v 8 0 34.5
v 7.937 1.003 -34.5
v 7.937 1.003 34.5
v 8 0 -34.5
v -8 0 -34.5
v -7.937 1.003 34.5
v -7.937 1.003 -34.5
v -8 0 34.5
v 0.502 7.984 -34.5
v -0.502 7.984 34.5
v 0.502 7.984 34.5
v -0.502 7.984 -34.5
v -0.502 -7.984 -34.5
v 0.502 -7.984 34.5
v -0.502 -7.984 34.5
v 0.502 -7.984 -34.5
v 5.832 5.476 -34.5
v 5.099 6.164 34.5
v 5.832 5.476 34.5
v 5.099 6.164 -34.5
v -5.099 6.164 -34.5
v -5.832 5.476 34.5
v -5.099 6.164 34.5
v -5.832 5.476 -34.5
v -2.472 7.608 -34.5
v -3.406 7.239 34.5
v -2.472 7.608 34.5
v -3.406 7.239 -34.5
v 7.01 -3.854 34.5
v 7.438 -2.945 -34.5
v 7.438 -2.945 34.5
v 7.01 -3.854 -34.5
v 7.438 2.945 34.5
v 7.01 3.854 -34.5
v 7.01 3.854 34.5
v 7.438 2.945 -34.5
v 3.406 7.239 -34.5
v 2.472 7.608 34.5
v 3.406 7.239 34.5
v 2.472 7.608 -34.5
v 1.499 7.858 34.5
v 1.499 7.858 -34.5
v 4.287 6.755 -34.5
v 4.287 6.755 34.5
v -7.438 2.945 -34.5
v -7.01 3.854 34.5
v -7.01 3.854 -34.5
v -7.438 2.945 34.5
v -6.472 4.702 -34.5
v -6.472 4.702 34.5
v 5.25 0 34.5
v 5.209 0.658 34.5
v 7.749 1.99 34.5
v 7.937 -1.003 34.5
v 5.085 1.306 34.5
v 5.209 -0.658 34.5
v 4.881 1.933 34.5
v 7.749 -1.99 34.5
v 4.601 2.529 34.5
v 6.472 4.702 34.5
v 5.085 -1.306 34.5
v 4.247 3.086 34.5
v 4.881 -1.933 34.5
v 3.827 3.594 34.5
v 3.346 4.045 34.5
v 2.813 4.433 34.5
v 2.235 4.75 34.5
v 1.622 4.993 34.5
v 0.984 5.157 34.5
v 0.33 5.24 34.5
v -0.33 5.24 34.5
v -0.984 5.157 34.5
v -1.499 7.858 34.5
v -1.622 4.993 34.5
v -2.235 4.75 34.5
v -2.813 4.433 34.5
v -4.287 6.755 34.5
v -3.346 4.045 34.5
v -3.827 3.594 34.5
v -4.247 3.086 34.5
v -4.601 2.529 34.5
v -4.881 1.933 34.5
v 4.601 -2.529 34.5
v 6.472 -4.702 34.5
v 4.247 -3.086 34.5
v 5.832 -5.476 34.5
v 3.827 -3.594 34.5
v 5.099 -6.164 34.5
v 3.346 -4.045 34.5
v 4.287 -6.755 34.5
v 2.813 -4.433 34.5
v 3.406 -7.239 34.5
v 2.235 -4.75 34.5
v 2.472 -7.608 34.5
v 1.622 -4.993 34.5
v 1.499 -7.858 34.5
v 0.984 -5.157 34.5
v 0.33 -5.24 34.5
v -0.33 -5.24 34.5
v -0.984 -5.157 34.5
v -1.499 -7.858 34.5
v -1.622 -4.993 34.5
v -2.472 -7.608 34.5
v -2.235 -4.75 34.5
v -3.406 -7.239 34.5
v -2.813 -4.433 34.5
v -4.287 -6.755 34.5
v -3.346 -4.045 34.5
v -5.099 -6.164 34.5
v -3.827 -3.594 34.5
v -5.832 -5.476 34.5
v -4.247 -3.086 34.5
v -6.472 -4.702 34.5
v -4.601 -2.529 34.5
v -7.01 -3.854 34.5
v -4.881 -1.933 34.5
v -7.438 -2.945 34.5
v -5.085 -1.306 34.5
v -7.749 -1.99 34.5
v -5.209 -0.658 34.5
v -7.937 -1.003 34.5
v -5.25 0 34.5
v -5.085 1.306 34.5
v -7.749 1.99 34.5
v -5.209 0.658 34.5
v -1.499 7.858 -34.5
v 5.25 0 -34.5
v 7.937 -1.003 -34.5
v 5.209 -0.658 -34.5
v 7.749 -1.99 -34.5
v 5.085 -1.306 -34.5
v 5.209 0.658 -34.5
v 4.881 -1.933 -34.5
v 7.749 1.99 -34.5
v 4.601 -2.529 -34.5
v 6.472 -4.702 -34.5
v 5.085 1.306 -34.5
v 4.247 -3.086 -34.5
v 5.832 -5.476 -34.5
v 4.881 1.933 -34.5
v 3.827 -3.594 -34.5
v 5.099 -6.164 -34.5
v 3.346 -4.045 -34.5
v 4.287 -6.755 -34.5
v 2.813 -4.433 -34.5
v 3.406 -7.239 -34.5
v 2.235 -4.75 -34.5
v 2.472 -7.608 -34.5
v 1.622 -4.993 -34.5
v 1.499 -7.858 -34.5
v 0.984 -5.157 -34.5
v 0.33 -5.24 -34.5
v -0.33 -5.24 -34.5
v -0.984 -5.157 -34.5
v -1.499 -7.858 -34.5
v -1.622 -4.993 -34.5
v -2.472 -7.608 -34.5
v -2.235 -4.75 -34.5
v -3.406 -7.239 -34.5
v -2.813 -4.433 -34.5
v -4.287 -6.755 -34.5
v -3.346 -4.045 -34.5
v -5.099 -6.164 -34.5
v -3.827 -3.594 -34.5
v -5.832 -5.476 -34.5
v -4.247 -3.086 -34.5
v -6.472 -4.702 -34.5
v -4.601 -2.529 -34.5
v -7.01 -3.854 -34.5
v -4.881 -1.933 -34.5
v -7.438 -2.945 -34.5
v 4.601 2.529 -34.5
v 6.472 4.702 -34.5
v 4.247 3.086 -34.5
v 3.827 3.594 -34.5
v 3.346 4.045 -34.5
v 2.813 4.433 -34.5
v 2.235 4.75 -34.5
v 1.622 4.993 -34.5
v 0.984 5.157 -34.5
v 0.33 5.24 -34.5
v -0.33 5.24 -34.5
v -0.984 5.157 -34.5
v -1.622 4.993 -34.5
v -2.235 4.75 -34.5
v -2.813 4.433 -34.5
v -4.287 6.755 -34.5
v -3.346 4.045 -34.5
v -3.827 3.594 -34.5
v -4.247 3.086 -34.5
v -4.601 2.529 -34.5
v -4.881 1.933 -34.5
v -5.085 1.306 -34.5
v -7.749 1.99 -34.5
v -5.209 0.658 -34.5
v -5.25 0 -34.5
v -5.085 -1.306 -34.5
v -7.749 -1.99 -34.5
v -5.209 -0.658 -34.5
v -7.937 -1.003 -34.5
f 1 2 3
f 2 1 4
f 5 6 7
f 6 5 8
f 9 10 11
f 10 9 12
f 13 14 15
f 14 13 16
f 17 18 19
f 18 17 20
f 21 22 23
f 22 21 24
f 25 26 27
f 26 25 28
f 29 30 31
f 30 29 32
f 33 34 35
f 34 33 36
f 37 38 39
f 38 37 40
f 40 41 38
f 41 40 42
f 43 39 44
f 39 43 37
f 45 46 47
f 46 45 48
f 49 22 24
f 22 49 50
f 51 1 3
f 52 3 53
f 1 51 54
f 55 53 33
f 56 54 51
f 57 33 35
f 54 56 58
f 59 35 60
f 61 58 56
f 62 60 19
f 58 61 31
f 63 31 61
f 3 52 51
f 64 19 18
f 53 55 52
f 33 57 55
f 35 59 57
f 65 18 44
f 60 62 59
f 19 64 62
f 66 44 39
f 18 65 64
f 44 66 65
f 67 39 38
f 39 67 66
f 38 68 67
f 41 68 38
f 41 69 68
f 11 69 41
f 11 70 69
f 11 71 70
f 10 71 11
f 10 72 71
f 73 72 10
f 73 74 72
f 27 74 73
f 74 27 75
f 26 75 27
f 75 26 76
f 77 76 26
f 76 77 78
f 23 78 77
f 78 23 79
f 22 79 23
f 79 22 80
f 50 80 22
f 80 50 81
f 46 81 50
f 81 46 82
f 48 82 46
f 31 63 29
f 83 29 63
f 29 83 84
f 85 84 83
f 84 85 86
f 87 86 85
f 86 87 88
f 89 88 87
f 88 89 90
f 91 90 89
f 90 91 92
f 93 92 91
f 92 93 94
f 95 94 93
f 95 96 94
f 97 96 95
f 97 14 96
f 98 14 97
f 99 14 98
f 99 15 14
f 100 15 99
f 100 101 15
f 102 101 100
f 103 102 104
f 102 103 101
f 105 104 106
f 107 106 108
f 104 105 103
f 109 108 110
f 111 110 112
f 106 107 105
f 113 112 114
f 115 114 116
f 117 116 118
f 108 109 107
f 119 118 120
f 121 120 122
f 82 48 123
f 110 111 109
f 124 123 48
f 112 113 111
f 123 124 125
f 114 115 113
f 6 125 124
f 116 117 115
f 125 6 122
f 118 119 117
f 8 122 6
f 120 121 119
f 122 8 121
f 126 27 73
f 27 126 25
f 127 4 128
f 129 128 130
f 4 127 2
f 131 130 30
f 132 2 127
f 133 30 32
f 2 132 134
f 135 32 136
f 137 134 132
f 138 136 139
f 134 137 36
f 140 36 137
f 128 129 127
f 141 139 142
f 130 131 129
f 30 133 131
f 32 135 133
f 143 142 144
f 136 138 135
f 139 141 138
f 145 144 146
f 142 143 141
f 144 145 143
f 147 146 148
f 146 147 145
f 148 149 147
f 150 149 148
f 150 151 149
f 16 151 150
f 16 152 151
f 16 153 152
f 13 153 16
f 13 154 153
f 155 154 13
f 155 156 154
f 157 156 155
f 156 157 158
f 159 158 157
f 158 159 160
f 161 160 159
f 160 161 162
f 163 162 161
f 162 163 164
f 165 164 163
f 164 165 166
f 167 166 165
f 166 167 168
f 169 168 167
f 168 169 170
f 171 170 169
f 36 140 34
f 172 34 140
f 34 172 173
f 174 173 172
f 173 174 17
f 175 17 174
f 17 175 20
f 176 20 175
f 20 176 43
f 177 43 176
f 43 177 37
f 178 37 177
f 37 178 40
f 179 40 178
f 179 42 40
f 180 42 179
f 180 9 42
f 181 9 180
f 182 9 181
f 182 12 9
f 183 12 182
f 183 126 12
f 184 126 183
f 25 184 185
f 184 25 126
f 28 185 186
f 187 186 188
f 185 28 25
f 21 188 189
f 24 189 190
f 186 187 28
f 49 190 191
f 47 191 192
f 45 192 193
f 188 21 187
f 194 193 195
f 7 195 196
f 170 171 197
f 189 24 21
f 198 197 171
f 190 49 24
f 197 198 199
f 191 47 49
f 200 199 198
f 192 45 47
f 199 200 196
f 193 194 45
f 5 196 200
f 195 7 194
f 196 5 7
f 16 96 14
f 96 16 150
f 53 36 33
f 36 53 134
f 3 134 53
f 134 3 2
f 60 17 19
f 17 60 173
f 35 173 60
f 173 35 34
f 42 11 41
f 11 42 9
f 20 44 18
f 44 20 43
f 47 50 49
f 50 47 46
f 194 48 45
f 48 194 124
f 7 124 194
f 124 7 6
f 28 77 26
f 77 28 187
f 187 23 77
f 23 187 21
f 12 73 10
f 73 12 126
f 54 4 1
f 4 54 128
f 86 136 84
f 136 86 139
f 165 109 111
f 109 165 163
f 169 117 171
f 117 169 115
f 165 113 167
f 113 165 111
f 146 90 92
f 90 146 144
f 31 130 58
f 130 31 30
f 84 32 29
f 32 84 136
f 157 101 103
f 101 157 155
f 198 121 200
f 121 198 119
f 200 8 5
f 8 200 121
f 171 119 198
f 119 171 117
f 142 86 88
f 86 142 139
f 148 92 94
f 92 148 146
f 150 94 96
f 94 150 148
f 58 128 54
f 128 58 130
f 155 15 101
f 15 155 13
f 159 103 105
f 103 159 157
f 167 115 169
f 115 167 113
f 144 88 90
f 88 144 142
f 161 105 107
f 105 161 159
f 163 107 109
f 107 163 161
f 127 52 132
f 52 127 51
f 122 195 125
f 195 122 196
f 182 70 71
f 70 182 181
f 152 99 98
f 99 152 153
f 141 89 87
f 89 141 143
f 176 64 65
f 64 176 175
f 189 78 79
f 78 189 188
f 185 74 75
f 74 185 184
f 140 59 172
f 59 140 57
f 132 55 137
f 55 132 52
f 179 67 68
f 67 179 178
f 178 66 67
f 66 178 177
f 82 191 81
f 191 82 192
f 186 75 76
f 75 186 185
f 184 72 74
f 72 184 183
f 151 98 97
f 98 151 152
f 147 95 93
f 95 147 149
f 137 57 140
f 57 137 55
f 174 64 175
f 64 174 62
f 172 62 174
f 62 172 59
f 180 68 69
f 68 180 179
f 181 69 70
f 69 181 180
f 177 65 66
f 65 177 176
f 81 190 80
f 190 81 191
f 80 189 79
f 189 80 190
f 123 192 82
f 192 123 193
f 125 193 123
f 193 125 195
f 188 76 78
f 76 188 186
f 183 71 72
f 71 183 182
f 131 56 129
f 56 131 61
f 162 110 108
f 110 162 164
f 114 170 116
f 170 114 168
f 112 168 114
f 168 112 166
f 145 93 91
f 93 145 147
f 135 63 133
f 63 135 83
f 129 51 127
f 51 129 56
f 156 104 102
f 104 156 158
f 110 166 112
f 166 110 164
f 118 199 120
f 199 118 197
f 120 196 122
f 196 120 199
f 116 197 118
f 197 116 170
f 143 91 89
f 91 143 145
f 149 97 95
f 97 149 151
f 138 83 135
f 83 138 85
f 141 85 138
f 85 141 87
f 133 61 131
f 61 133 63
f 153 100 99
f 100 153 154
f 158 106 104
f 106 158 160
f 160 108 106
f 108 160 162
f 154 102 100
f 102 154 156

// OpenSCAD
$fn = 50;


difference() {
	union() {
		translate(v = [0, 0, -34.5000000000]) {
			cylinder(h = 69, r = 8.0000000000);
		}
	}
	union() {
		translate(v = [0, 0, -100.0000000000]) {
			cylinder(h = 200, r = 5.2500000000);
		}
	}
}
